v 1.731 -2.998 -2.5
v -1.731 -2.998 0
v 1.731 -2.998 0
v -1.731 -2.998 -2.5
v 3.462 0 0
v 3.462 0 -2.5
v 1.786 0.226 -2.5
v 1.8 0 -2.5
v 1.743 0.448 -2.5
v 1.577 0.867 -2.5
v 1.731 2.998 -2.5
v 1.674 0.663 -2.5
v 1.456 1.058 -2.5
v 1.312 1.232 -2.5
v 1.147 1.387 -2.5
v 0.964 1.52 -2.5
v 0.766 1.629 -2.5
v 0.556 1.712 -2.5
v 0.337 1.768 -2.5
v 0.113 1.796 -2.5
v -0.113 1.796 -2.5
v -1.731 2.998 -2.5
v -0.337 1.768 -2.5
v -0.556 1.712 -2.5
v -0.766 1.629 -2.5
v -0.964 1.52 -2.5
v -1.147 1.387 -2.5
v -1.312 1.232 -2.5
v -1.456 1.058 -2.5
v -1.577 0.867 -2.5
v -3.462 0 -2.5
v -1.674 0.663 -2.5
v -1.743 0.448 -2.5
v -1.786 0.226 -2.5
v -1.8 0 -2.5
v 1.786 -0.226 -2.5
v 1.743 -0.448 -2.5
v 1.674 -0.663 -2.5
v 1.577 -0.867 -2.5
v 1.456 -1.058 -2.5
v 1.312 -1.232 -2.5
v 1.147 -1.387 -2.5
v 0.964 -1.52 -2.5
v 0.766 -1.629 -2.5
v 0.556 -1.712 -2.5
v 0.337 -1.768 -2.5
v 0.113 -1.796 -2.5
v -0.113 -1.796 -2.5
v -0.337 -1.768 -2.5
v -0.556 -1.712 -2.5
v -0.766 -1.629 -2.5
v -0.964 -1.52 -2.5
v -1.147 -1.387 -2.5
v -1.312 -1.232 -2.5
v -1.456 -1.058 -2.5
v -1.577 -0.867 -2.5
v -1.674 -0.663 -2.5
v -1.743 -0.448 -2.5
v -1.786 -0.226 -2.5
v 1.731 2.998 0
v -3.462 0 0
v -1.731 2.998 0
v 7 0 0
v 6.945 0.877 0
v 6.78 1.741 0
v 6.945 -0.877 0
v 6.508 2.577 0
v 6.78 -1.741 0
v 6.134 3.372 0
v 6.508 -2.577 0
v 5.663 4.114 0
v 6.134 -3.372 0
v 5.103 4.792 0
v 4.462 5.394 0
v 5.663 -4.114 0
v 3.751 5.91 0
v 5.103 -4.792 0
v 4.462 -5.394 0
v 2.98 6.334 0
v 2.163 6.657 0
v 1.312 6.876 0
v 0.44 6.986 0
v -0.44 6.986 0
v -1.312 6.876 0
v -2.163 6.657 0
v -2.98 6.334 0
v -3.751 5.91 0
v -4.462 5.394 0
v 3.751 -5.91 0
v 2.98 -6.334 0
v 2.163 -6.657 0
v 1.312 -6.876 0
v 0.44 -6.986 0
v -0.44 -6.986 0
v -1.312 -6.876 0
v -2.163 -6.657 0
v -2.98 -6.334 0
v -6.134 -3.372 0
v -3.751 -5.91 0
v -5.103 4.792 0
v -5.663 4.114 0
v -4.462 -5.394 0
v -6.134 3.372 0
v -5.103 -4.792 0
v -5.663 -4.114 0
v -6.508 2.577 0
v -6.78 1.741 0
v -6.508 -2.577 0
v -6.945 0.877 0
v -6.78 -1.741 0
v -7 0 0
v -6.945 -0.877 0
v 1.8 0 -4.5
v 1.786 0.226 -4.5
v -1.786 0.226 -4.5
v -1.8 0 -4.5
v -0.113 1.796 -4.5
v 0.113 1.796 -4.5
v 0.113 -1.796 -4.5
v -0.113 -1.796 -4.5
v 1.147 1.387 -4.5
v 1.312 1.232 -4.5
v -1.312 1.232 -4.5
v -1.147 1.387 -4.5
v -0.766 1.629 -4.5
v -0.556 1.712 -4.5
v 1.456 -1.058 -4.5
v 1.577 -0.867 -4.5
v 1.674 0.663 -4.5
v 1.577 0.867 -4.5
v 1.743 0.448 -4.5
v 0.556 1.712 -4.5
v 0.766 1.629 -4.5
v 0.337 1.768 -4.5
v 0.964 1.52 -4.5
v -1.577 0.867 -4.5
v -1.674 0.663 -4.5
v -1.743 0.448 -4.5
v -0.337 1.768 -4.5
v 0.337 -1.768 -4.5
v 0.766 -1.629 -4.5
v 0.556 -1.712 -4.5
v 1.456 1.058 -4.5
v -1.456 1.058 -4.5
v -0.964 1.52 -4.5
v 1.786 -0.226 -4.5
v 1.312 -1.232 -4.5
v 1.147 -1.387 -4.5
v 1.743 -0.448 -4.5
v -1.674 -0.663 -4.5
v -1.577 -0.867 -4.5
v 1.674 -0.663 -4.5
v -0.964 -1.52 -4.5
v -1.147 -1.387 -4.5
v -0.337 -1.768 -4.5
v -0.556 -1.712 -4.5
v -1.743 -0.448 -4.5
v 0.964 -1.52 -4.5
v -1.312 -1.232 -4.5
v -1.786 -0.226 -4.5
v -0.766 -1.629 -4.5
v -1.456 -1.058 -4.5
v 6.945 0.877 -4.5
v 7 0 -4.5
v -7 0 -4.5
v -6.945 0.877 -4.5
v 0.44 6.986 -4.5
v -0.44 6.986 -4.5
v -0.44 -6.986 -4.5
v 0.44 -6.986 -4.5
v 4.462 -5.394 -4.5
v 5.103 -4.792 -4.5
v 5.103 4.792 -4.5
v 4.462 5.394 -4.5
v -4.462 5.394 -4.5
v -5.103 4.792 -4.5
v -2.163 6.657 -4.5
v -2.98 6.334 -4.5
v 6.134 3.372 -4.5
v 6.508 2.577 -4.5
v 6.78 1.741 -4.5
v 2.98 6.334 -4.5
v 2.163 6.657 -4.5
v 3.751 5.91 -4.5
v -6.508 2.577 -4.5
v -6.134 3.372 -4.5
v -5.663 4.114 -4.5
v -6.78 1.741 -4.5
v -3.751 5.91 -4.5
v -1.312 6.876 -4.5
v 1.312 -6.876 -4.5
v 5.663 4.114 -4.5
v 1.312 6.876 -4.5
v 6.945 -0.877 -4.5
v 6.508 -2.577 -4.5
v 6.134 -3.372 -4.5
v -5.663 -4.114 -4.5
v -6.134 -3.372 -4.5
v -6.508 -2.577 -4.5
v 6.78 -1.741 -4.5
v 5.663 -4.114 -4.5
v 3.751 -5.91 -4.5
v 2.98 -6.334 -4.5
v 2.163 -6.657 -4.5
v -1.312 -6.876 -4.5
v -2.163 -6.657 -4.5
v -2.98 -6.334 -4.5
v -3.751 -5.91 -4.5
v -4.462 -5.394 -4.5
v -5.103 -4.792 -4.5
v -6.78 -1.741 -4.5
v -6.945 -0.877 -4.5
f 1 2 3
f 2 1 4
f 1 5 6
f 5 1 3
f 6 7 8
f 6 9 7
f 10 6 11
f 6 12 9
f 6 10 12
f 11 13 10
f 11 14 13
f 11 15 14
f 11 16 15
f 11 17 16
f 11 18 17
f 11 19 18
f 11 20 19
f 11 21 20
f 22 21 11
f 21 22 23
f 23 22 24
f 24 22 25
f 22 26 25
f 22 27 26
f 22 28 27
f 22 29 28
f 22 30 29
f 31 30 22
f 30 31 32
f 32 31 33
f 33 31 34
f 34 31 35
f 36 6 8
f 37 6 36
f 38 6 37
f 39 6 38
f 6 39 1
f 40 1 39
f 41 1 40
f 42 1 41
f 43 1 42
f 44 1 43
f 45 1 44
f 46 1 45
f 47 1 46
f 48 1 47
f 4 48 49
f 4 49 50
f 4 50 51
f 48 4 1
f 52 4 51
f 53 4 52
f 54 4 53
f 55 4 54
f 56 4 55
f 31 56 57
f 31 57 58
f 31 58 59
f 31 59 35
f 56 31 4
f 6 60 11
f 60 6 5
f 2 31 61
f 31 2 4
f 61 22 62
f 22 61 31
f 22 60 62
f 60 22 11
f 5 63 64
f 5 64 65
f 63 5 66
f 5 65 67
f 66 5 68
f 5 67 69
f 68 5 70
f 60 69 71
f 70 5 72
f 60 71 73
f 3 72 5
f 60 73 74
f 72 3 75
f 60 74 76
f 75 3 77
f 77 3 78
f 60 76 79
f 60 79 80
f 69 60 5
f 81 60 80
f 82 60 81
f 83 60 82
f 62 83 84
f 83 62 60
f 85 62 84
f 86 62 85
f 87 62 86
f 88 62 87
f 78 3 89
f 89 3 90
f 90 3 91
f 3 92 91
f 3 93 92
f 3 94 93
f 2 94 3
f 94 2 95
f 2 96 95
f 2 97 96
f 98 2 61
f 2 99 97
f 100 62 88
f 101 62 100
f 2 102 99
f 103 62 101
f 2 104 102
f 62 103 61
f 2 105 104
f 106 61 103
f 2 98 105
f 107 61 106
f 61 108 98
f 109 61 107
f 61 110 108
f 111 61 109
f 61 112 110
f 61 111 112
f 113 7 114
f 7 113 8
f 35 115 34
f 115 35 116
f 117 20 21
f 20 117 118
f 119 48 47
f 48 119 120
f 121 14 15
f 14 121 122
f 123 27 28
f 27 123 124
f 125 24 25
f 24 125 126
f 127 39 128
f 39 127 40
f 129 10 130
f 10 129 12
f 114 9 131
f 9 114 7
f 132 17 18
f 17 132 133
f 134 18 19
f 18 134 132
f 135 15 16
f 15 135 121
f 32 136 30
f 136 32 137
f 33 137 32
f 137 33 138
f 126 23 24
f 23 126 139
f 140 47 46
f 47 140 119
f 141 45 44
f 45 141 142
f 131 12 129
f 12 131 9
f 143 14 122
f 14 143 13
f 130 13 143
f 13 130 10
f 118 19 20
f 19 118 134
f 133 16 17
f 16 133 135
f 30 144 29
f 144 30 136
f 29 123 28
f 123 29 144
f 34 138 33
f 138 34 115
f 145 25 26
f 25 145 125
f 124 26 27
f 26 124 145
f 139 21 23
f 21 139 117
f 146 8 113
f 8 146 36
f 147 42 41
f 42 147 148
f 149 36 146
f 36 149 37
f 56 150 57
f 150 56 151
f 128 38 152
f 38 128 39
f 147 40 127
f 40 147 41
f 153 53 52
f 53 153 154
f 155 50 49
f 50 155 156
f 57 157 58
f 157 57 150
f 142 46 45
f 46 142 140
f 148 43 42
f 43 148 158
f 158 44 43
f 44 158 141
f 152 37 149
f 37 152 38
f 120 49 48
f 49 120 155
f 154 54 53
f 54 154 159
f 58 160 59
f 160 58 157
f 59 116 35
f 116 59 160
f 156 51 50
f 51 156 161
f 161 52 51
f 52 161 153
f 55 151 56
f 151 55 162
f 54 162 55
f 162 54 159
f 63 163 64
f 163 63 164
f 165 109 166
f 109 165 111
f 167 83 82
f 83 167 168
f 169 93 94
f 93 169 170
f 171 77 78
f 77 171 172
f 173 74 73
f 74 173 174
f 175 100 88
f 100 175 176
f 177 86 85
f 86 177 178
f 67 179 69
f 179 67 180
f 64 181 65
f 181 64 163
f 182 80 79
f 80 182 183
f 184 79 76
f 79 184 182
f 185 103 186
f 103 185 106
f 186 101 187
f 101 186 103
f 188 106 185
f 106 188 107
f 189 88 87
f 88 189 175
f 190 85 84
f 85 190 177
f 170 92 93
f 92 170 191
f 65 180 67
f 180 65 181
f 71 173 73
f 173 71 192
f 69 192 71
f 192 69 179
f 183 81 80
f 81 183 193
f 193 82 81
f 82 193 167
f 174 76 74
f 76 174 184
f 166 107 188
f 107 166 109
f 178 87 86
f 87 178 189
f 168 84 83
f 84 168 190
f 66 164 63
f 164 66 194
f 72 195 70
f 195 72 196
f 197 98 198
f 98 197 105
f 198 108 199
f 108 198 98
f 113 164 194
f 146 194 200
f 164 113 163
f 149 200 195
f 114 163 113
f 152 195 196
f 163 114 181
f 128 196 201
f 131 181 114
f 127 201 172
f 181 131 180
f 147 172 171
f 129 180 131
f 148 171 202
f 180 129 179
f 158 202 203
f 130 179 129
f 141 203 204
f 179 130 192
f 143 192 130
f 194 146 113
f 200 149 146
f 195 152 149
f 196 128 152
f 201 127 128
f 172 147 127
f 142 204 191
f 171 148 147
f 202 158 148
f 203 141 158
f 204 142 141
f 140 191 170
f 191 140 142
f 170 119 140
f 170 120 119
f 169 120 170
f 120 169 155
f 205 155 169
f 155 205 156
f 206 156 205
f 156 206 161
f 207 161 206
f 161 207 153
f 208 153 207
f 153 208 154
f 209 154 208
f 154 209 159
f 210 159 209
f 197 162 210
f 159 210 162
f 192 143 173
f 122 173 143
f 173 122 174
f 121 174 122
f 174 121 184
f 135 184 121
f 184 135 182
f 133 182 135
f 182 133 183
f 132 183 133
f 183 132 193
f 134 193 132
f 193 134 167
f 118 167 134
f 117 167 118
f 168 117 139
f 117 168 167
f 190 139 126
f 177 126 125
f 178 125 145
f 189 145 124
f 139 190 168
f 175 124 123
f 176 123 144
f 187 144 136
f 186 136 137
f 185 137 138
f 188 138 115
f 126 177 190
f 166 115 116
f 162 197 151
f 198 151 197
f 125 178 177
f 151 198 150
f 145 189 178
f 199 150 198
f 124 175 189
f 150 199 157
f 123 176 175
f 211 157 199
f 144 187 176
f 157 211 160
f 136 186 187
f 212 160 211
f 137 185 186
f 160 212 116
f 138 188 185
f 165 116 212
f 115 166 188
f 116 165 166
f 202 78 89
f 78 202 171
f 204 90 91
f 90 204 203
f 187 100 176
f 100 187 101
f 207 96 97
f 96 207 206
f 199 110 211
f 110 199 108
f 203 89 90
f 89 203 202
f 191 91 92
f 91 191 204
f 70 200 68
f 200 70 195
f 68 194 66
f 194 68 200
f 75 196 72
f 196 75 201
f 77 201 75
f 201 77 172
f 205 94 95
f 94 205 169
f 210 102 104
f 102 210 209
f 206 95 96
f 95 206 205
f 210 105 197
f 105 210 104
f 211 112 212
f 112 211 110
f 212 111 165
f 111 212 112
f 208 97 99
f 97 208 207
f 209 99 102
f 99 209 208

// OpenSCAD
$fn = 50;

difference() {
	union() {
		translate(v = [0, 0, -4.5]) {
			cylinder(h = 4.5, r = 7.0);
		}
	}
	union() {
		translate(v = [0, 0, 0]) {
			rotate(a = [0, 0, 0]) {
				difference() {
					union() {
						translate(v = [0, 0, -2.5]) {
							linear_extrude(height = 2.5) {
								polygon(points = [[3.4619999999999997, 0.0], [1.7310000000000003, 2.9981799479017264], [-1.7309999999999992, 2.9981799479017264], [-3.4619999999999997, 4.2397272186481365e-16], [-1.7310000000000014, -2.998179947901726], [1.7309999999999977, -2.9981799479017277]]);
							}
						}
					}
					union();
				}
			}
		}
		#translate(v = [0, 0, -100.0]) {
			cylinder(h = 200, r = 1.8);
		}
	}
}
